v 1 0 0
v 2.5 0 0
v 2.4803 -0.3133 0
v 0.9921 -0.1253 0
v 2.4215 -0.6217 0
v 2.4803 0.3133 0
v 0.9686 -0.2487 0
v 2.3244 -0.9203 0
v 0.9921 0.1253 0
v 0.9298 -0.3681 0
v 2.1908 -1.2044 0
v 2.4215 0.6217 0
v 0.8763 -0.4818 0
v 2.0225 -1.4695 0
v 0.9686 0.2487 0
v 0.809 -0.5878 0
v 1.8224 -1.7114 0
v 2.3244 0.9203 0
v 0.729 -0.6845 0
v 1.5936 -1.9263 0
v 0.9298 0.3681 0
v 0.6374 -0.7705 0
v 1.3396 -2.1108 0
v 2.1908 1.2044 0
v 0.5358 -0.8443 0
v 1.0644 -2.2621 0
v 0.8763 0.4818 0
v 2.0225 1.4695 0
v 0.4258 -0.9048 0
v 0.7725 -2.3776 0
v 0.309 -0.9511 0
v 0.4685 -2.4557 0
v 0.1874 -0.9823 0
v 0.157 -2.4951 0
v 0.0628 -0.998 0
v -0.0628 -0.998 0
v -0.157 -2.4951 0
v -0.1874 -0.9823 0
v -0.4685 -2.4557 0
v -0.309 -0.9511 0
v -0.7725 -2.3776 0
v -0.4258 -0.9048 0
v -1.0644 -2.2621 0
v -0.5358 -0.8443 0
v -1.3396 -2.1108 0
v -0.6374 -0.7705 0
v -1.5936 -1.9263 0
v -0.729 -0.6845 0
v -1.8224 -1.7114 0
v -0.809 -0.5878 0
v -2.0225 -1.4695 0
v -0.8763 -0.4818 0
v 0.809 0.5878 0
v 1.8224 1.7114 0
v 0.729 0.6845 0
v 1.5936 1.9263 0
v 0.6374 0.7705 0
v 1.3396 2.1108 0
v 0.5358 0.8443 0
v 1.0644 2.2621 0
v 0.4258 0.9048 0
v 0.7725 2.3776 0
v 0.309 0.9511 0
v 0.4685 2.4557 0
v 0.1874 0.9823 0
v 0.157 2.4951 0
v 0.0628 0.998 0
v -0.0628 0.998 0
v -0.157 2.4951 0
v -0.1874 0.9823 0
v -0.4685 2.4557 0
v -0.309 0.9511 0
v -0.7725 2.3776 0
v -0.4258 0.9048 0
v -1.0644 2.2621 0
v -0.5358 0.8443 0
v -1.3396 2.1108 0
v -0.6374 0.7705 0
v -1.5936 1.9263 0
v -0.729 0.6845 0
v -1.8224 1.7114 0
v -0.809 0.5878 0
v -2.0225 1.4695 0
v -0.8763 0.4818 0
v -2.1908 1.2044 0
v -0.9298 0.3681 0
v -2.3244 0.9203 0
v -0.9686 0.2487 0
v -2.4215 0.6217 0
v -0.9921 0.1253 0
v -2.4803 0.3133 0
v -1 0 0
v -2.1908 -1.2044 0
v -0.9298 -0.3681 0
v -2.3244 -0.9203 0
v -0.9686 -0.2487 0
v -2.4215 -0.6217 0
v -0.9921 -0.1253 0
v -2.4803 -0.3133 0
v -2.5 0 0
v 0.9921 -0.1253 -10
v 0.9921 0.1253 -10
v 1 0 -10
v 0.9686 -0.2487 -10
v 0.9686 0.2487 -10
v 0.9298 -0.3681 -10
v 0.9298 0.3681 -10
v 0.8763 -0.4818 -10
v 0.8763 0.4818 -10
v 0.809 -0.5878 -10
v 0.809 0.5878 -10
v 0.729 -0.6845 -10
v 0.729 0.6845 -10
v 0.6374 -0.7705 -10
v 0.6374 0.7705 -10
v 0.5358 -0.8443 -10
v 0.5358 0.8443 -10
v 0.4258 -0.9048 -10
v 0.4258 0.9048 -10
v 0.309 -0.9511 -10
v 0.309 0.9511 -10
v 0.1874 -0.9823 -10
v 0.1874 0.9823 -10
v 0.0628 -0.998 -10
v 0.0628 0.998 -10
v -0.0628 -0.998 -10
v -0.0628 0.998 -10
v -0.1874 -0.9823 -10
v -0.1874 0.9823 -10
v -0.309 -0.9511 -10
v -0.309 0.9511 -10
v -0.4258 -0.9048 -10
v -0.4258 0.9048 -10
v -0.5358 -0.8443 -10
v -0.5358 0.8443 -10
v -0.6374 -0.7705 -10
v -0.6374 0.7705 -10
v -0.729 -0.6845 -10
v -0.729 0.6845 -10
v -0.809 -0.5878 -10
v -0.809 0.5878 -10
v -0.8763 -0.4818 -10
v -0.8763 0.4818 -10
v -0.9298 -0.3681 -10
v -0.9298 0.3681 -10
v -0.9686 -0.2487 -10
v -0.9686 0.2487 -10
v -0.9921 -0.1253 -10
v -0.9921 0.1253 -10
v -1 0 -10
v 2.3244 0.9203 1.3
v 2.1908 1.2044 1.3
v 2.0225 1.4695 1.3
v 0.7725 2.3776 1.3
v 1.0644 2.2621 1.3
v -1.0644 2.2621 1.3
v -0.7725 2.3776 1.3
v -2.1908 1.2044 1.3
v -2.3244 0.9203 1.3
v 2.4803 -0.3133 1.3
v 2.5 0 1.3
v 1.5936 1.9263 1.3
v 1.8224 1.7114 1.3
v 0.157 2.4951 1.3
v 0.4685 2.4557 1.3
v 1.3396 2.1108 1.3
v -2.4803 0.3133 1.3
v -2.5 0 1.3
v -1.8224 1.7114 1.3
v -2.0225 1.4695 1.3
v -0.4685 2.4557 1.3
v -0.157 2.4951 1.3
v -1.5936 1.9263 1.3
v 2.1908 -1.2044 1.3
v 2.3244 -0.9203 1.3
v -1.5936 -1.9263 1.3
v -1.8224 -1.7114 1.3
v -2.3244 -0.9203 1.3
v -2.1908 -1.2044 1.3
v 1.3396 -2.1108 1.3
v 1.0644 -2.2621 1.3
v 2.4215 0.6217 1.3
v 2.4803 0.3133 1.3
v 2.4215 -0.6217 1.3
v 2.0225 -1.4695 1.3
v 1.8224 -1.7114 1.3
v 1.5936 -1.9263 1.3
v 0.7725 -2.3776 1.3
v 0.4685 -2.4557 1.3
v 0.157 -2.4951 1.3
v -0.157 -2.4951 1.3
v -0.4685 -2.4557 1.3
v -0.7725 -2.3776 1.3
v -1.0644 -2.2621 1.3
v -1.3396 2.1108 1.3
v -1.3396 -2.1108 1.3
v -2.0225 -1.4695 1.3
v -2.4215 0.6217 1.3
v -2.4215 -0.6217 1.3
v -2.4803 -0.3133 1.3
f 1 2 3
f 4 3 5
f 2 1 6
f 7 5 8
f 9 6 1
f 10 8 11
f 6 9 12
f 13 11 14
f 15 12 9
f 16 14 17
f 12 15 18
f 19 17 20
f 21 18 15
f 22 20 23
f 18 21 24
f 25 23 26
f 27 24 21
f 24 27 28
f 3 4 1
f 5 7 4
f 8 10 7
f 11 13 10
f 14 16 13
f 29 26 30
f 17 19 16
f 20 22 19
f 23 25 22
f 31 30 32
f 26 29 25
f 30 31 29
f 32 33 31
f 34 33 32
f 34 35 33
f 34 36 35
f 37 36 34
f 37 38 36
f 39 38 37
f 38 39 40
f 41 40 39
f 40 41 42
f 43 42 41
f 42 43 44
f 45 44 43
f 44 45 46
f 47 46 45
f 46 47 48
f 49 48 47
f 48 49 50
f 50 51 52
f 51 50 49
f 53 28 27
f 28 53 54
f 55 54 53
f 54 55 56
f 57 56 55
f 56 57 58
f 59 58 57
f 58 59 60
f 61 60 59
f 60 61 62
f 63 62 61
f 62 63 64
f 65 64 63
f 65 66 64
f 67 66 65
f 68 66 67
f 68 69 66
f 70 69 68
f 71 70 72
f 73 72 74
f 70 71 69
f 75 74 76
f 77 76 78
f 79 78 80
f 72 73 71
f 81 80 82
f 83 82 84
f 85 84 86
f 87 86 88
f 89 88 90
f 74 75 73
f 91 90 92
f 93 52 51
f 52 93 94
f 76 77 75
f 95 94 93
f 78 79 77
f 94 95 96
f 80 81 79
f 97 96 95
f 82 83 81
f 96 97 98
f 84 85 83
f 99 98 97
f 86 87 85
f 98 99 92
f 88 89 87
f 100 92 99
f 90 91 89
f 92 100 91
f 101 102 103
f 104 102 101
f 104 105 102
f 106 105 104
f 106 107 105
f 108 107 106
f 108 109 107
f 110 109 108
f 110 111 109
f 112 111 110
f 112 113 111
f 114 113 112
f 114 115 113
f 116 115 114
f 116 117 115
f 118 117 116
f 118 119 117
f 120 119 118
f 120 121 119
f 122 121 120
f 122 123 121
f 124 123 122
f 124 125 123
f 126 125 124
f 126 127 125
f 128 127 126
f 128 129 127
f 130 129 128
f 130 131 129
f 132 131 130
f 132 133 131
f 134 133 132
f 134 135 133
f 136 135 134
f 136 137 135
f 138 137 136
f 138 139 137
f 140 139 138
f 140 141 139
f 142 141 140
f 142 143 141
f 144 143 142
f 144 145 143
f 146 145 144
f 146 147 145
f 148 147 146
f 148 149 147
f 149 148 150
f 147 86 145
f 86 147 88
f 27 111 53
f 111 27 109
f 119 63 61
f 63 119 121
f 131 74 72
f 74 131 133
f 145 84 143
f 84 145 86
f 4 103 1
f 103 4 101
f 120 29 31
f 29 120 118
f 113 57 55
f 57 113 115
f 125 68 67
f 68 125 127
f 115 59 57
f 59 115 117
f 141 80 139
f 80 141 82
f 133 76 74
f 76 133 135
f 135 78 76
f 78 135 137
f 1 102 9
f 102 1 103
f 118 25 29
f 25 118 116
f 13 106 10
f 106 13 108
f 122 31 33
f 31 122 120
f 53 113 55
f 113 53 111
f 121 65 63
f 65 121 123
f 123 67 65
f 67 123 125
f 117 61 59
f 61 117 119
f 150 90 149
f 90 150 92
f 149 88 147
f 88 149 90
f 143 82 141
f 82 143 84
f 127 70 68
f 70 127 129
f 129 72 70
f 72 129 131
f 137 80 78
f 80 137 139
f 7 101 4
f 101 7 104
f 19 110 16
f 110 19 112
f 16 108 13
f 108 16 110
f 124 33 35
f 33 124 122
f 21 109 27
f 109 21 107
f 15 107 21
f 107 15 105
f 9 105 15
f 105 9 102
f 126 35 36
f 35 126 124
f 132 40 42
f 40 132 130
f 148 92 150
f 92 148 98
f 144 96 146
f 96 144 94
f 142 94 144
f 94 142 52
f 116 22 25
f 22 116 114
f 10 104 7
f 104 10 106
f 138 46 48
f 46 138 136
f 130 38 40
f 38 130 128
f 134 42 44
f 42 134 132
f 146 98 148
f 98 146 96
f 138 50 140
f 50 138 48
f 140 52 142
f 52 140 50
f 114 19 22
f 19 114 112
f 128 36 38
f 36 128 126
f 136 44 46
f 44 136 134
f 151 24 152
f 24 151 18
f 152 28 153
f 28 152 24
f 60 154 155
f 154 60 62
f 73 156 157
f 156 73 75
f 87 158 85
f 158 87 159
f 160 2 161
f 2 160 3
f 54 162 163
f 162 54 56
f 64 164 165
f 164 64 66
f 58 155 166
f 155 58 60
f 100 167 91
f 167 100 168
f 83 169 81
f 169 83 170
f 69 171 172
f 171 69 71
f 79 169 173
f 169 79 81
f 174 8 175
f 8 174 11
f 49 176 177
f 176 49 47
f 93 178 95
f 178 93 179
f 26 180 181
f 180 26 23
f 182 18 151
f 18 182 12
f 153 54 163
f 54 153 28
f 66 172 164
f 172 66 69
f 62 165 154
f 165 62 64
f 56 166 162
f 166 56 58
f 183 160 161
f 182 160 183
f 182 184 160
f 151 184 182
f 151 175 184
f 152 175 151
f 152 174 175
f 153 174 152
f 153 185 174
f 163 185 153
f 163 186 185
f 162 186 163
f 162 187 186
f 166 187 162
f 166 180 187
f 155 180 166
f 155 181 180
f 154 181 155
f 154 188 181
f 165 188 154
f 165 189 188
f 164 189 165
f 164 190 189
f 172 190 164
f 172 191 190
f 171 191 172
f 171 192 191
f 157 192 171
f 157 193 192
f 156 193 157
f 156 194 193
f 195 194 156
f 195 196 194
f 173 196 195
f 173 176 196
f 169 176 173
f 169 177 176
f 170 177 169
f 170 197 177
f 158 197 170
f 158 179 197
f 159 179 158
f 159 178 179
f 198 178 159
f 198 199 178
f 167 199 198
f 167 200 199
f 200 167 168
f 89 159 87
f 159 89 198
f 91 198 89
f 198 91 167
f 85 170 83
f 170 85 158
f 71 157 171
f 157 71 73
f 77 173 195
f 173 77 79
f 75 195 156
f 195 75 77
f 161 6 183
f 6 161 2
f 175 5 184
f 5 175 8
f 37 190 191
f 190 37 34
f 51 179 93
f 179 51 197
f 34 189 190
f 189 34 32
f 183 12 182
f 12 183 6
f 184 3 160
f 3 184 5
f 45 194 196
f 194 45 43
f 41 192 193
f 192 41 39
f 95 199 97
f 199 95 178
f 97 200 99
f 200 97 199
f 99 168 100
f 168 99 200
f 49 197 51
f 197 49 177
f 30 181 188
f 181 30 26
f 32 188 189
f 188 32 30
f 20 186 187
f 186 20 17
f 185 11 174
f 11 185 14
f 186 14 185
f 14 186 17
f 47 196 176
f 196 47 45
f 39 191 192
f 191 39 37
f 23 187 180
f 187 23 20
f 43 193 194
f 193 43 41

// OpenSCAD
$fn = 50;


difference() {
	union() {
		translate(v = [0, 0, 0]) {
			rotate(a = [0, 0, 0]) {
				difference() {
					union() {
						translate(v = [0, 0, -10.0000000000]) {
							cylinder(h = 10, r = 0.7500000000);
						}
						translate(v = [0, 0, -10.0000000000]) {
							cylinder(h = 10, r = 1.0000000000);
						}
						cylinder(h = 1.3000000000, r = 2.5000000000);
						translate(v = [0, 0, -10.0000000000]) {
							cylinder(h = 10, r = 0.7500000000);
						}
					}
					union();
				}
			}
		}
	}
	union();
}
